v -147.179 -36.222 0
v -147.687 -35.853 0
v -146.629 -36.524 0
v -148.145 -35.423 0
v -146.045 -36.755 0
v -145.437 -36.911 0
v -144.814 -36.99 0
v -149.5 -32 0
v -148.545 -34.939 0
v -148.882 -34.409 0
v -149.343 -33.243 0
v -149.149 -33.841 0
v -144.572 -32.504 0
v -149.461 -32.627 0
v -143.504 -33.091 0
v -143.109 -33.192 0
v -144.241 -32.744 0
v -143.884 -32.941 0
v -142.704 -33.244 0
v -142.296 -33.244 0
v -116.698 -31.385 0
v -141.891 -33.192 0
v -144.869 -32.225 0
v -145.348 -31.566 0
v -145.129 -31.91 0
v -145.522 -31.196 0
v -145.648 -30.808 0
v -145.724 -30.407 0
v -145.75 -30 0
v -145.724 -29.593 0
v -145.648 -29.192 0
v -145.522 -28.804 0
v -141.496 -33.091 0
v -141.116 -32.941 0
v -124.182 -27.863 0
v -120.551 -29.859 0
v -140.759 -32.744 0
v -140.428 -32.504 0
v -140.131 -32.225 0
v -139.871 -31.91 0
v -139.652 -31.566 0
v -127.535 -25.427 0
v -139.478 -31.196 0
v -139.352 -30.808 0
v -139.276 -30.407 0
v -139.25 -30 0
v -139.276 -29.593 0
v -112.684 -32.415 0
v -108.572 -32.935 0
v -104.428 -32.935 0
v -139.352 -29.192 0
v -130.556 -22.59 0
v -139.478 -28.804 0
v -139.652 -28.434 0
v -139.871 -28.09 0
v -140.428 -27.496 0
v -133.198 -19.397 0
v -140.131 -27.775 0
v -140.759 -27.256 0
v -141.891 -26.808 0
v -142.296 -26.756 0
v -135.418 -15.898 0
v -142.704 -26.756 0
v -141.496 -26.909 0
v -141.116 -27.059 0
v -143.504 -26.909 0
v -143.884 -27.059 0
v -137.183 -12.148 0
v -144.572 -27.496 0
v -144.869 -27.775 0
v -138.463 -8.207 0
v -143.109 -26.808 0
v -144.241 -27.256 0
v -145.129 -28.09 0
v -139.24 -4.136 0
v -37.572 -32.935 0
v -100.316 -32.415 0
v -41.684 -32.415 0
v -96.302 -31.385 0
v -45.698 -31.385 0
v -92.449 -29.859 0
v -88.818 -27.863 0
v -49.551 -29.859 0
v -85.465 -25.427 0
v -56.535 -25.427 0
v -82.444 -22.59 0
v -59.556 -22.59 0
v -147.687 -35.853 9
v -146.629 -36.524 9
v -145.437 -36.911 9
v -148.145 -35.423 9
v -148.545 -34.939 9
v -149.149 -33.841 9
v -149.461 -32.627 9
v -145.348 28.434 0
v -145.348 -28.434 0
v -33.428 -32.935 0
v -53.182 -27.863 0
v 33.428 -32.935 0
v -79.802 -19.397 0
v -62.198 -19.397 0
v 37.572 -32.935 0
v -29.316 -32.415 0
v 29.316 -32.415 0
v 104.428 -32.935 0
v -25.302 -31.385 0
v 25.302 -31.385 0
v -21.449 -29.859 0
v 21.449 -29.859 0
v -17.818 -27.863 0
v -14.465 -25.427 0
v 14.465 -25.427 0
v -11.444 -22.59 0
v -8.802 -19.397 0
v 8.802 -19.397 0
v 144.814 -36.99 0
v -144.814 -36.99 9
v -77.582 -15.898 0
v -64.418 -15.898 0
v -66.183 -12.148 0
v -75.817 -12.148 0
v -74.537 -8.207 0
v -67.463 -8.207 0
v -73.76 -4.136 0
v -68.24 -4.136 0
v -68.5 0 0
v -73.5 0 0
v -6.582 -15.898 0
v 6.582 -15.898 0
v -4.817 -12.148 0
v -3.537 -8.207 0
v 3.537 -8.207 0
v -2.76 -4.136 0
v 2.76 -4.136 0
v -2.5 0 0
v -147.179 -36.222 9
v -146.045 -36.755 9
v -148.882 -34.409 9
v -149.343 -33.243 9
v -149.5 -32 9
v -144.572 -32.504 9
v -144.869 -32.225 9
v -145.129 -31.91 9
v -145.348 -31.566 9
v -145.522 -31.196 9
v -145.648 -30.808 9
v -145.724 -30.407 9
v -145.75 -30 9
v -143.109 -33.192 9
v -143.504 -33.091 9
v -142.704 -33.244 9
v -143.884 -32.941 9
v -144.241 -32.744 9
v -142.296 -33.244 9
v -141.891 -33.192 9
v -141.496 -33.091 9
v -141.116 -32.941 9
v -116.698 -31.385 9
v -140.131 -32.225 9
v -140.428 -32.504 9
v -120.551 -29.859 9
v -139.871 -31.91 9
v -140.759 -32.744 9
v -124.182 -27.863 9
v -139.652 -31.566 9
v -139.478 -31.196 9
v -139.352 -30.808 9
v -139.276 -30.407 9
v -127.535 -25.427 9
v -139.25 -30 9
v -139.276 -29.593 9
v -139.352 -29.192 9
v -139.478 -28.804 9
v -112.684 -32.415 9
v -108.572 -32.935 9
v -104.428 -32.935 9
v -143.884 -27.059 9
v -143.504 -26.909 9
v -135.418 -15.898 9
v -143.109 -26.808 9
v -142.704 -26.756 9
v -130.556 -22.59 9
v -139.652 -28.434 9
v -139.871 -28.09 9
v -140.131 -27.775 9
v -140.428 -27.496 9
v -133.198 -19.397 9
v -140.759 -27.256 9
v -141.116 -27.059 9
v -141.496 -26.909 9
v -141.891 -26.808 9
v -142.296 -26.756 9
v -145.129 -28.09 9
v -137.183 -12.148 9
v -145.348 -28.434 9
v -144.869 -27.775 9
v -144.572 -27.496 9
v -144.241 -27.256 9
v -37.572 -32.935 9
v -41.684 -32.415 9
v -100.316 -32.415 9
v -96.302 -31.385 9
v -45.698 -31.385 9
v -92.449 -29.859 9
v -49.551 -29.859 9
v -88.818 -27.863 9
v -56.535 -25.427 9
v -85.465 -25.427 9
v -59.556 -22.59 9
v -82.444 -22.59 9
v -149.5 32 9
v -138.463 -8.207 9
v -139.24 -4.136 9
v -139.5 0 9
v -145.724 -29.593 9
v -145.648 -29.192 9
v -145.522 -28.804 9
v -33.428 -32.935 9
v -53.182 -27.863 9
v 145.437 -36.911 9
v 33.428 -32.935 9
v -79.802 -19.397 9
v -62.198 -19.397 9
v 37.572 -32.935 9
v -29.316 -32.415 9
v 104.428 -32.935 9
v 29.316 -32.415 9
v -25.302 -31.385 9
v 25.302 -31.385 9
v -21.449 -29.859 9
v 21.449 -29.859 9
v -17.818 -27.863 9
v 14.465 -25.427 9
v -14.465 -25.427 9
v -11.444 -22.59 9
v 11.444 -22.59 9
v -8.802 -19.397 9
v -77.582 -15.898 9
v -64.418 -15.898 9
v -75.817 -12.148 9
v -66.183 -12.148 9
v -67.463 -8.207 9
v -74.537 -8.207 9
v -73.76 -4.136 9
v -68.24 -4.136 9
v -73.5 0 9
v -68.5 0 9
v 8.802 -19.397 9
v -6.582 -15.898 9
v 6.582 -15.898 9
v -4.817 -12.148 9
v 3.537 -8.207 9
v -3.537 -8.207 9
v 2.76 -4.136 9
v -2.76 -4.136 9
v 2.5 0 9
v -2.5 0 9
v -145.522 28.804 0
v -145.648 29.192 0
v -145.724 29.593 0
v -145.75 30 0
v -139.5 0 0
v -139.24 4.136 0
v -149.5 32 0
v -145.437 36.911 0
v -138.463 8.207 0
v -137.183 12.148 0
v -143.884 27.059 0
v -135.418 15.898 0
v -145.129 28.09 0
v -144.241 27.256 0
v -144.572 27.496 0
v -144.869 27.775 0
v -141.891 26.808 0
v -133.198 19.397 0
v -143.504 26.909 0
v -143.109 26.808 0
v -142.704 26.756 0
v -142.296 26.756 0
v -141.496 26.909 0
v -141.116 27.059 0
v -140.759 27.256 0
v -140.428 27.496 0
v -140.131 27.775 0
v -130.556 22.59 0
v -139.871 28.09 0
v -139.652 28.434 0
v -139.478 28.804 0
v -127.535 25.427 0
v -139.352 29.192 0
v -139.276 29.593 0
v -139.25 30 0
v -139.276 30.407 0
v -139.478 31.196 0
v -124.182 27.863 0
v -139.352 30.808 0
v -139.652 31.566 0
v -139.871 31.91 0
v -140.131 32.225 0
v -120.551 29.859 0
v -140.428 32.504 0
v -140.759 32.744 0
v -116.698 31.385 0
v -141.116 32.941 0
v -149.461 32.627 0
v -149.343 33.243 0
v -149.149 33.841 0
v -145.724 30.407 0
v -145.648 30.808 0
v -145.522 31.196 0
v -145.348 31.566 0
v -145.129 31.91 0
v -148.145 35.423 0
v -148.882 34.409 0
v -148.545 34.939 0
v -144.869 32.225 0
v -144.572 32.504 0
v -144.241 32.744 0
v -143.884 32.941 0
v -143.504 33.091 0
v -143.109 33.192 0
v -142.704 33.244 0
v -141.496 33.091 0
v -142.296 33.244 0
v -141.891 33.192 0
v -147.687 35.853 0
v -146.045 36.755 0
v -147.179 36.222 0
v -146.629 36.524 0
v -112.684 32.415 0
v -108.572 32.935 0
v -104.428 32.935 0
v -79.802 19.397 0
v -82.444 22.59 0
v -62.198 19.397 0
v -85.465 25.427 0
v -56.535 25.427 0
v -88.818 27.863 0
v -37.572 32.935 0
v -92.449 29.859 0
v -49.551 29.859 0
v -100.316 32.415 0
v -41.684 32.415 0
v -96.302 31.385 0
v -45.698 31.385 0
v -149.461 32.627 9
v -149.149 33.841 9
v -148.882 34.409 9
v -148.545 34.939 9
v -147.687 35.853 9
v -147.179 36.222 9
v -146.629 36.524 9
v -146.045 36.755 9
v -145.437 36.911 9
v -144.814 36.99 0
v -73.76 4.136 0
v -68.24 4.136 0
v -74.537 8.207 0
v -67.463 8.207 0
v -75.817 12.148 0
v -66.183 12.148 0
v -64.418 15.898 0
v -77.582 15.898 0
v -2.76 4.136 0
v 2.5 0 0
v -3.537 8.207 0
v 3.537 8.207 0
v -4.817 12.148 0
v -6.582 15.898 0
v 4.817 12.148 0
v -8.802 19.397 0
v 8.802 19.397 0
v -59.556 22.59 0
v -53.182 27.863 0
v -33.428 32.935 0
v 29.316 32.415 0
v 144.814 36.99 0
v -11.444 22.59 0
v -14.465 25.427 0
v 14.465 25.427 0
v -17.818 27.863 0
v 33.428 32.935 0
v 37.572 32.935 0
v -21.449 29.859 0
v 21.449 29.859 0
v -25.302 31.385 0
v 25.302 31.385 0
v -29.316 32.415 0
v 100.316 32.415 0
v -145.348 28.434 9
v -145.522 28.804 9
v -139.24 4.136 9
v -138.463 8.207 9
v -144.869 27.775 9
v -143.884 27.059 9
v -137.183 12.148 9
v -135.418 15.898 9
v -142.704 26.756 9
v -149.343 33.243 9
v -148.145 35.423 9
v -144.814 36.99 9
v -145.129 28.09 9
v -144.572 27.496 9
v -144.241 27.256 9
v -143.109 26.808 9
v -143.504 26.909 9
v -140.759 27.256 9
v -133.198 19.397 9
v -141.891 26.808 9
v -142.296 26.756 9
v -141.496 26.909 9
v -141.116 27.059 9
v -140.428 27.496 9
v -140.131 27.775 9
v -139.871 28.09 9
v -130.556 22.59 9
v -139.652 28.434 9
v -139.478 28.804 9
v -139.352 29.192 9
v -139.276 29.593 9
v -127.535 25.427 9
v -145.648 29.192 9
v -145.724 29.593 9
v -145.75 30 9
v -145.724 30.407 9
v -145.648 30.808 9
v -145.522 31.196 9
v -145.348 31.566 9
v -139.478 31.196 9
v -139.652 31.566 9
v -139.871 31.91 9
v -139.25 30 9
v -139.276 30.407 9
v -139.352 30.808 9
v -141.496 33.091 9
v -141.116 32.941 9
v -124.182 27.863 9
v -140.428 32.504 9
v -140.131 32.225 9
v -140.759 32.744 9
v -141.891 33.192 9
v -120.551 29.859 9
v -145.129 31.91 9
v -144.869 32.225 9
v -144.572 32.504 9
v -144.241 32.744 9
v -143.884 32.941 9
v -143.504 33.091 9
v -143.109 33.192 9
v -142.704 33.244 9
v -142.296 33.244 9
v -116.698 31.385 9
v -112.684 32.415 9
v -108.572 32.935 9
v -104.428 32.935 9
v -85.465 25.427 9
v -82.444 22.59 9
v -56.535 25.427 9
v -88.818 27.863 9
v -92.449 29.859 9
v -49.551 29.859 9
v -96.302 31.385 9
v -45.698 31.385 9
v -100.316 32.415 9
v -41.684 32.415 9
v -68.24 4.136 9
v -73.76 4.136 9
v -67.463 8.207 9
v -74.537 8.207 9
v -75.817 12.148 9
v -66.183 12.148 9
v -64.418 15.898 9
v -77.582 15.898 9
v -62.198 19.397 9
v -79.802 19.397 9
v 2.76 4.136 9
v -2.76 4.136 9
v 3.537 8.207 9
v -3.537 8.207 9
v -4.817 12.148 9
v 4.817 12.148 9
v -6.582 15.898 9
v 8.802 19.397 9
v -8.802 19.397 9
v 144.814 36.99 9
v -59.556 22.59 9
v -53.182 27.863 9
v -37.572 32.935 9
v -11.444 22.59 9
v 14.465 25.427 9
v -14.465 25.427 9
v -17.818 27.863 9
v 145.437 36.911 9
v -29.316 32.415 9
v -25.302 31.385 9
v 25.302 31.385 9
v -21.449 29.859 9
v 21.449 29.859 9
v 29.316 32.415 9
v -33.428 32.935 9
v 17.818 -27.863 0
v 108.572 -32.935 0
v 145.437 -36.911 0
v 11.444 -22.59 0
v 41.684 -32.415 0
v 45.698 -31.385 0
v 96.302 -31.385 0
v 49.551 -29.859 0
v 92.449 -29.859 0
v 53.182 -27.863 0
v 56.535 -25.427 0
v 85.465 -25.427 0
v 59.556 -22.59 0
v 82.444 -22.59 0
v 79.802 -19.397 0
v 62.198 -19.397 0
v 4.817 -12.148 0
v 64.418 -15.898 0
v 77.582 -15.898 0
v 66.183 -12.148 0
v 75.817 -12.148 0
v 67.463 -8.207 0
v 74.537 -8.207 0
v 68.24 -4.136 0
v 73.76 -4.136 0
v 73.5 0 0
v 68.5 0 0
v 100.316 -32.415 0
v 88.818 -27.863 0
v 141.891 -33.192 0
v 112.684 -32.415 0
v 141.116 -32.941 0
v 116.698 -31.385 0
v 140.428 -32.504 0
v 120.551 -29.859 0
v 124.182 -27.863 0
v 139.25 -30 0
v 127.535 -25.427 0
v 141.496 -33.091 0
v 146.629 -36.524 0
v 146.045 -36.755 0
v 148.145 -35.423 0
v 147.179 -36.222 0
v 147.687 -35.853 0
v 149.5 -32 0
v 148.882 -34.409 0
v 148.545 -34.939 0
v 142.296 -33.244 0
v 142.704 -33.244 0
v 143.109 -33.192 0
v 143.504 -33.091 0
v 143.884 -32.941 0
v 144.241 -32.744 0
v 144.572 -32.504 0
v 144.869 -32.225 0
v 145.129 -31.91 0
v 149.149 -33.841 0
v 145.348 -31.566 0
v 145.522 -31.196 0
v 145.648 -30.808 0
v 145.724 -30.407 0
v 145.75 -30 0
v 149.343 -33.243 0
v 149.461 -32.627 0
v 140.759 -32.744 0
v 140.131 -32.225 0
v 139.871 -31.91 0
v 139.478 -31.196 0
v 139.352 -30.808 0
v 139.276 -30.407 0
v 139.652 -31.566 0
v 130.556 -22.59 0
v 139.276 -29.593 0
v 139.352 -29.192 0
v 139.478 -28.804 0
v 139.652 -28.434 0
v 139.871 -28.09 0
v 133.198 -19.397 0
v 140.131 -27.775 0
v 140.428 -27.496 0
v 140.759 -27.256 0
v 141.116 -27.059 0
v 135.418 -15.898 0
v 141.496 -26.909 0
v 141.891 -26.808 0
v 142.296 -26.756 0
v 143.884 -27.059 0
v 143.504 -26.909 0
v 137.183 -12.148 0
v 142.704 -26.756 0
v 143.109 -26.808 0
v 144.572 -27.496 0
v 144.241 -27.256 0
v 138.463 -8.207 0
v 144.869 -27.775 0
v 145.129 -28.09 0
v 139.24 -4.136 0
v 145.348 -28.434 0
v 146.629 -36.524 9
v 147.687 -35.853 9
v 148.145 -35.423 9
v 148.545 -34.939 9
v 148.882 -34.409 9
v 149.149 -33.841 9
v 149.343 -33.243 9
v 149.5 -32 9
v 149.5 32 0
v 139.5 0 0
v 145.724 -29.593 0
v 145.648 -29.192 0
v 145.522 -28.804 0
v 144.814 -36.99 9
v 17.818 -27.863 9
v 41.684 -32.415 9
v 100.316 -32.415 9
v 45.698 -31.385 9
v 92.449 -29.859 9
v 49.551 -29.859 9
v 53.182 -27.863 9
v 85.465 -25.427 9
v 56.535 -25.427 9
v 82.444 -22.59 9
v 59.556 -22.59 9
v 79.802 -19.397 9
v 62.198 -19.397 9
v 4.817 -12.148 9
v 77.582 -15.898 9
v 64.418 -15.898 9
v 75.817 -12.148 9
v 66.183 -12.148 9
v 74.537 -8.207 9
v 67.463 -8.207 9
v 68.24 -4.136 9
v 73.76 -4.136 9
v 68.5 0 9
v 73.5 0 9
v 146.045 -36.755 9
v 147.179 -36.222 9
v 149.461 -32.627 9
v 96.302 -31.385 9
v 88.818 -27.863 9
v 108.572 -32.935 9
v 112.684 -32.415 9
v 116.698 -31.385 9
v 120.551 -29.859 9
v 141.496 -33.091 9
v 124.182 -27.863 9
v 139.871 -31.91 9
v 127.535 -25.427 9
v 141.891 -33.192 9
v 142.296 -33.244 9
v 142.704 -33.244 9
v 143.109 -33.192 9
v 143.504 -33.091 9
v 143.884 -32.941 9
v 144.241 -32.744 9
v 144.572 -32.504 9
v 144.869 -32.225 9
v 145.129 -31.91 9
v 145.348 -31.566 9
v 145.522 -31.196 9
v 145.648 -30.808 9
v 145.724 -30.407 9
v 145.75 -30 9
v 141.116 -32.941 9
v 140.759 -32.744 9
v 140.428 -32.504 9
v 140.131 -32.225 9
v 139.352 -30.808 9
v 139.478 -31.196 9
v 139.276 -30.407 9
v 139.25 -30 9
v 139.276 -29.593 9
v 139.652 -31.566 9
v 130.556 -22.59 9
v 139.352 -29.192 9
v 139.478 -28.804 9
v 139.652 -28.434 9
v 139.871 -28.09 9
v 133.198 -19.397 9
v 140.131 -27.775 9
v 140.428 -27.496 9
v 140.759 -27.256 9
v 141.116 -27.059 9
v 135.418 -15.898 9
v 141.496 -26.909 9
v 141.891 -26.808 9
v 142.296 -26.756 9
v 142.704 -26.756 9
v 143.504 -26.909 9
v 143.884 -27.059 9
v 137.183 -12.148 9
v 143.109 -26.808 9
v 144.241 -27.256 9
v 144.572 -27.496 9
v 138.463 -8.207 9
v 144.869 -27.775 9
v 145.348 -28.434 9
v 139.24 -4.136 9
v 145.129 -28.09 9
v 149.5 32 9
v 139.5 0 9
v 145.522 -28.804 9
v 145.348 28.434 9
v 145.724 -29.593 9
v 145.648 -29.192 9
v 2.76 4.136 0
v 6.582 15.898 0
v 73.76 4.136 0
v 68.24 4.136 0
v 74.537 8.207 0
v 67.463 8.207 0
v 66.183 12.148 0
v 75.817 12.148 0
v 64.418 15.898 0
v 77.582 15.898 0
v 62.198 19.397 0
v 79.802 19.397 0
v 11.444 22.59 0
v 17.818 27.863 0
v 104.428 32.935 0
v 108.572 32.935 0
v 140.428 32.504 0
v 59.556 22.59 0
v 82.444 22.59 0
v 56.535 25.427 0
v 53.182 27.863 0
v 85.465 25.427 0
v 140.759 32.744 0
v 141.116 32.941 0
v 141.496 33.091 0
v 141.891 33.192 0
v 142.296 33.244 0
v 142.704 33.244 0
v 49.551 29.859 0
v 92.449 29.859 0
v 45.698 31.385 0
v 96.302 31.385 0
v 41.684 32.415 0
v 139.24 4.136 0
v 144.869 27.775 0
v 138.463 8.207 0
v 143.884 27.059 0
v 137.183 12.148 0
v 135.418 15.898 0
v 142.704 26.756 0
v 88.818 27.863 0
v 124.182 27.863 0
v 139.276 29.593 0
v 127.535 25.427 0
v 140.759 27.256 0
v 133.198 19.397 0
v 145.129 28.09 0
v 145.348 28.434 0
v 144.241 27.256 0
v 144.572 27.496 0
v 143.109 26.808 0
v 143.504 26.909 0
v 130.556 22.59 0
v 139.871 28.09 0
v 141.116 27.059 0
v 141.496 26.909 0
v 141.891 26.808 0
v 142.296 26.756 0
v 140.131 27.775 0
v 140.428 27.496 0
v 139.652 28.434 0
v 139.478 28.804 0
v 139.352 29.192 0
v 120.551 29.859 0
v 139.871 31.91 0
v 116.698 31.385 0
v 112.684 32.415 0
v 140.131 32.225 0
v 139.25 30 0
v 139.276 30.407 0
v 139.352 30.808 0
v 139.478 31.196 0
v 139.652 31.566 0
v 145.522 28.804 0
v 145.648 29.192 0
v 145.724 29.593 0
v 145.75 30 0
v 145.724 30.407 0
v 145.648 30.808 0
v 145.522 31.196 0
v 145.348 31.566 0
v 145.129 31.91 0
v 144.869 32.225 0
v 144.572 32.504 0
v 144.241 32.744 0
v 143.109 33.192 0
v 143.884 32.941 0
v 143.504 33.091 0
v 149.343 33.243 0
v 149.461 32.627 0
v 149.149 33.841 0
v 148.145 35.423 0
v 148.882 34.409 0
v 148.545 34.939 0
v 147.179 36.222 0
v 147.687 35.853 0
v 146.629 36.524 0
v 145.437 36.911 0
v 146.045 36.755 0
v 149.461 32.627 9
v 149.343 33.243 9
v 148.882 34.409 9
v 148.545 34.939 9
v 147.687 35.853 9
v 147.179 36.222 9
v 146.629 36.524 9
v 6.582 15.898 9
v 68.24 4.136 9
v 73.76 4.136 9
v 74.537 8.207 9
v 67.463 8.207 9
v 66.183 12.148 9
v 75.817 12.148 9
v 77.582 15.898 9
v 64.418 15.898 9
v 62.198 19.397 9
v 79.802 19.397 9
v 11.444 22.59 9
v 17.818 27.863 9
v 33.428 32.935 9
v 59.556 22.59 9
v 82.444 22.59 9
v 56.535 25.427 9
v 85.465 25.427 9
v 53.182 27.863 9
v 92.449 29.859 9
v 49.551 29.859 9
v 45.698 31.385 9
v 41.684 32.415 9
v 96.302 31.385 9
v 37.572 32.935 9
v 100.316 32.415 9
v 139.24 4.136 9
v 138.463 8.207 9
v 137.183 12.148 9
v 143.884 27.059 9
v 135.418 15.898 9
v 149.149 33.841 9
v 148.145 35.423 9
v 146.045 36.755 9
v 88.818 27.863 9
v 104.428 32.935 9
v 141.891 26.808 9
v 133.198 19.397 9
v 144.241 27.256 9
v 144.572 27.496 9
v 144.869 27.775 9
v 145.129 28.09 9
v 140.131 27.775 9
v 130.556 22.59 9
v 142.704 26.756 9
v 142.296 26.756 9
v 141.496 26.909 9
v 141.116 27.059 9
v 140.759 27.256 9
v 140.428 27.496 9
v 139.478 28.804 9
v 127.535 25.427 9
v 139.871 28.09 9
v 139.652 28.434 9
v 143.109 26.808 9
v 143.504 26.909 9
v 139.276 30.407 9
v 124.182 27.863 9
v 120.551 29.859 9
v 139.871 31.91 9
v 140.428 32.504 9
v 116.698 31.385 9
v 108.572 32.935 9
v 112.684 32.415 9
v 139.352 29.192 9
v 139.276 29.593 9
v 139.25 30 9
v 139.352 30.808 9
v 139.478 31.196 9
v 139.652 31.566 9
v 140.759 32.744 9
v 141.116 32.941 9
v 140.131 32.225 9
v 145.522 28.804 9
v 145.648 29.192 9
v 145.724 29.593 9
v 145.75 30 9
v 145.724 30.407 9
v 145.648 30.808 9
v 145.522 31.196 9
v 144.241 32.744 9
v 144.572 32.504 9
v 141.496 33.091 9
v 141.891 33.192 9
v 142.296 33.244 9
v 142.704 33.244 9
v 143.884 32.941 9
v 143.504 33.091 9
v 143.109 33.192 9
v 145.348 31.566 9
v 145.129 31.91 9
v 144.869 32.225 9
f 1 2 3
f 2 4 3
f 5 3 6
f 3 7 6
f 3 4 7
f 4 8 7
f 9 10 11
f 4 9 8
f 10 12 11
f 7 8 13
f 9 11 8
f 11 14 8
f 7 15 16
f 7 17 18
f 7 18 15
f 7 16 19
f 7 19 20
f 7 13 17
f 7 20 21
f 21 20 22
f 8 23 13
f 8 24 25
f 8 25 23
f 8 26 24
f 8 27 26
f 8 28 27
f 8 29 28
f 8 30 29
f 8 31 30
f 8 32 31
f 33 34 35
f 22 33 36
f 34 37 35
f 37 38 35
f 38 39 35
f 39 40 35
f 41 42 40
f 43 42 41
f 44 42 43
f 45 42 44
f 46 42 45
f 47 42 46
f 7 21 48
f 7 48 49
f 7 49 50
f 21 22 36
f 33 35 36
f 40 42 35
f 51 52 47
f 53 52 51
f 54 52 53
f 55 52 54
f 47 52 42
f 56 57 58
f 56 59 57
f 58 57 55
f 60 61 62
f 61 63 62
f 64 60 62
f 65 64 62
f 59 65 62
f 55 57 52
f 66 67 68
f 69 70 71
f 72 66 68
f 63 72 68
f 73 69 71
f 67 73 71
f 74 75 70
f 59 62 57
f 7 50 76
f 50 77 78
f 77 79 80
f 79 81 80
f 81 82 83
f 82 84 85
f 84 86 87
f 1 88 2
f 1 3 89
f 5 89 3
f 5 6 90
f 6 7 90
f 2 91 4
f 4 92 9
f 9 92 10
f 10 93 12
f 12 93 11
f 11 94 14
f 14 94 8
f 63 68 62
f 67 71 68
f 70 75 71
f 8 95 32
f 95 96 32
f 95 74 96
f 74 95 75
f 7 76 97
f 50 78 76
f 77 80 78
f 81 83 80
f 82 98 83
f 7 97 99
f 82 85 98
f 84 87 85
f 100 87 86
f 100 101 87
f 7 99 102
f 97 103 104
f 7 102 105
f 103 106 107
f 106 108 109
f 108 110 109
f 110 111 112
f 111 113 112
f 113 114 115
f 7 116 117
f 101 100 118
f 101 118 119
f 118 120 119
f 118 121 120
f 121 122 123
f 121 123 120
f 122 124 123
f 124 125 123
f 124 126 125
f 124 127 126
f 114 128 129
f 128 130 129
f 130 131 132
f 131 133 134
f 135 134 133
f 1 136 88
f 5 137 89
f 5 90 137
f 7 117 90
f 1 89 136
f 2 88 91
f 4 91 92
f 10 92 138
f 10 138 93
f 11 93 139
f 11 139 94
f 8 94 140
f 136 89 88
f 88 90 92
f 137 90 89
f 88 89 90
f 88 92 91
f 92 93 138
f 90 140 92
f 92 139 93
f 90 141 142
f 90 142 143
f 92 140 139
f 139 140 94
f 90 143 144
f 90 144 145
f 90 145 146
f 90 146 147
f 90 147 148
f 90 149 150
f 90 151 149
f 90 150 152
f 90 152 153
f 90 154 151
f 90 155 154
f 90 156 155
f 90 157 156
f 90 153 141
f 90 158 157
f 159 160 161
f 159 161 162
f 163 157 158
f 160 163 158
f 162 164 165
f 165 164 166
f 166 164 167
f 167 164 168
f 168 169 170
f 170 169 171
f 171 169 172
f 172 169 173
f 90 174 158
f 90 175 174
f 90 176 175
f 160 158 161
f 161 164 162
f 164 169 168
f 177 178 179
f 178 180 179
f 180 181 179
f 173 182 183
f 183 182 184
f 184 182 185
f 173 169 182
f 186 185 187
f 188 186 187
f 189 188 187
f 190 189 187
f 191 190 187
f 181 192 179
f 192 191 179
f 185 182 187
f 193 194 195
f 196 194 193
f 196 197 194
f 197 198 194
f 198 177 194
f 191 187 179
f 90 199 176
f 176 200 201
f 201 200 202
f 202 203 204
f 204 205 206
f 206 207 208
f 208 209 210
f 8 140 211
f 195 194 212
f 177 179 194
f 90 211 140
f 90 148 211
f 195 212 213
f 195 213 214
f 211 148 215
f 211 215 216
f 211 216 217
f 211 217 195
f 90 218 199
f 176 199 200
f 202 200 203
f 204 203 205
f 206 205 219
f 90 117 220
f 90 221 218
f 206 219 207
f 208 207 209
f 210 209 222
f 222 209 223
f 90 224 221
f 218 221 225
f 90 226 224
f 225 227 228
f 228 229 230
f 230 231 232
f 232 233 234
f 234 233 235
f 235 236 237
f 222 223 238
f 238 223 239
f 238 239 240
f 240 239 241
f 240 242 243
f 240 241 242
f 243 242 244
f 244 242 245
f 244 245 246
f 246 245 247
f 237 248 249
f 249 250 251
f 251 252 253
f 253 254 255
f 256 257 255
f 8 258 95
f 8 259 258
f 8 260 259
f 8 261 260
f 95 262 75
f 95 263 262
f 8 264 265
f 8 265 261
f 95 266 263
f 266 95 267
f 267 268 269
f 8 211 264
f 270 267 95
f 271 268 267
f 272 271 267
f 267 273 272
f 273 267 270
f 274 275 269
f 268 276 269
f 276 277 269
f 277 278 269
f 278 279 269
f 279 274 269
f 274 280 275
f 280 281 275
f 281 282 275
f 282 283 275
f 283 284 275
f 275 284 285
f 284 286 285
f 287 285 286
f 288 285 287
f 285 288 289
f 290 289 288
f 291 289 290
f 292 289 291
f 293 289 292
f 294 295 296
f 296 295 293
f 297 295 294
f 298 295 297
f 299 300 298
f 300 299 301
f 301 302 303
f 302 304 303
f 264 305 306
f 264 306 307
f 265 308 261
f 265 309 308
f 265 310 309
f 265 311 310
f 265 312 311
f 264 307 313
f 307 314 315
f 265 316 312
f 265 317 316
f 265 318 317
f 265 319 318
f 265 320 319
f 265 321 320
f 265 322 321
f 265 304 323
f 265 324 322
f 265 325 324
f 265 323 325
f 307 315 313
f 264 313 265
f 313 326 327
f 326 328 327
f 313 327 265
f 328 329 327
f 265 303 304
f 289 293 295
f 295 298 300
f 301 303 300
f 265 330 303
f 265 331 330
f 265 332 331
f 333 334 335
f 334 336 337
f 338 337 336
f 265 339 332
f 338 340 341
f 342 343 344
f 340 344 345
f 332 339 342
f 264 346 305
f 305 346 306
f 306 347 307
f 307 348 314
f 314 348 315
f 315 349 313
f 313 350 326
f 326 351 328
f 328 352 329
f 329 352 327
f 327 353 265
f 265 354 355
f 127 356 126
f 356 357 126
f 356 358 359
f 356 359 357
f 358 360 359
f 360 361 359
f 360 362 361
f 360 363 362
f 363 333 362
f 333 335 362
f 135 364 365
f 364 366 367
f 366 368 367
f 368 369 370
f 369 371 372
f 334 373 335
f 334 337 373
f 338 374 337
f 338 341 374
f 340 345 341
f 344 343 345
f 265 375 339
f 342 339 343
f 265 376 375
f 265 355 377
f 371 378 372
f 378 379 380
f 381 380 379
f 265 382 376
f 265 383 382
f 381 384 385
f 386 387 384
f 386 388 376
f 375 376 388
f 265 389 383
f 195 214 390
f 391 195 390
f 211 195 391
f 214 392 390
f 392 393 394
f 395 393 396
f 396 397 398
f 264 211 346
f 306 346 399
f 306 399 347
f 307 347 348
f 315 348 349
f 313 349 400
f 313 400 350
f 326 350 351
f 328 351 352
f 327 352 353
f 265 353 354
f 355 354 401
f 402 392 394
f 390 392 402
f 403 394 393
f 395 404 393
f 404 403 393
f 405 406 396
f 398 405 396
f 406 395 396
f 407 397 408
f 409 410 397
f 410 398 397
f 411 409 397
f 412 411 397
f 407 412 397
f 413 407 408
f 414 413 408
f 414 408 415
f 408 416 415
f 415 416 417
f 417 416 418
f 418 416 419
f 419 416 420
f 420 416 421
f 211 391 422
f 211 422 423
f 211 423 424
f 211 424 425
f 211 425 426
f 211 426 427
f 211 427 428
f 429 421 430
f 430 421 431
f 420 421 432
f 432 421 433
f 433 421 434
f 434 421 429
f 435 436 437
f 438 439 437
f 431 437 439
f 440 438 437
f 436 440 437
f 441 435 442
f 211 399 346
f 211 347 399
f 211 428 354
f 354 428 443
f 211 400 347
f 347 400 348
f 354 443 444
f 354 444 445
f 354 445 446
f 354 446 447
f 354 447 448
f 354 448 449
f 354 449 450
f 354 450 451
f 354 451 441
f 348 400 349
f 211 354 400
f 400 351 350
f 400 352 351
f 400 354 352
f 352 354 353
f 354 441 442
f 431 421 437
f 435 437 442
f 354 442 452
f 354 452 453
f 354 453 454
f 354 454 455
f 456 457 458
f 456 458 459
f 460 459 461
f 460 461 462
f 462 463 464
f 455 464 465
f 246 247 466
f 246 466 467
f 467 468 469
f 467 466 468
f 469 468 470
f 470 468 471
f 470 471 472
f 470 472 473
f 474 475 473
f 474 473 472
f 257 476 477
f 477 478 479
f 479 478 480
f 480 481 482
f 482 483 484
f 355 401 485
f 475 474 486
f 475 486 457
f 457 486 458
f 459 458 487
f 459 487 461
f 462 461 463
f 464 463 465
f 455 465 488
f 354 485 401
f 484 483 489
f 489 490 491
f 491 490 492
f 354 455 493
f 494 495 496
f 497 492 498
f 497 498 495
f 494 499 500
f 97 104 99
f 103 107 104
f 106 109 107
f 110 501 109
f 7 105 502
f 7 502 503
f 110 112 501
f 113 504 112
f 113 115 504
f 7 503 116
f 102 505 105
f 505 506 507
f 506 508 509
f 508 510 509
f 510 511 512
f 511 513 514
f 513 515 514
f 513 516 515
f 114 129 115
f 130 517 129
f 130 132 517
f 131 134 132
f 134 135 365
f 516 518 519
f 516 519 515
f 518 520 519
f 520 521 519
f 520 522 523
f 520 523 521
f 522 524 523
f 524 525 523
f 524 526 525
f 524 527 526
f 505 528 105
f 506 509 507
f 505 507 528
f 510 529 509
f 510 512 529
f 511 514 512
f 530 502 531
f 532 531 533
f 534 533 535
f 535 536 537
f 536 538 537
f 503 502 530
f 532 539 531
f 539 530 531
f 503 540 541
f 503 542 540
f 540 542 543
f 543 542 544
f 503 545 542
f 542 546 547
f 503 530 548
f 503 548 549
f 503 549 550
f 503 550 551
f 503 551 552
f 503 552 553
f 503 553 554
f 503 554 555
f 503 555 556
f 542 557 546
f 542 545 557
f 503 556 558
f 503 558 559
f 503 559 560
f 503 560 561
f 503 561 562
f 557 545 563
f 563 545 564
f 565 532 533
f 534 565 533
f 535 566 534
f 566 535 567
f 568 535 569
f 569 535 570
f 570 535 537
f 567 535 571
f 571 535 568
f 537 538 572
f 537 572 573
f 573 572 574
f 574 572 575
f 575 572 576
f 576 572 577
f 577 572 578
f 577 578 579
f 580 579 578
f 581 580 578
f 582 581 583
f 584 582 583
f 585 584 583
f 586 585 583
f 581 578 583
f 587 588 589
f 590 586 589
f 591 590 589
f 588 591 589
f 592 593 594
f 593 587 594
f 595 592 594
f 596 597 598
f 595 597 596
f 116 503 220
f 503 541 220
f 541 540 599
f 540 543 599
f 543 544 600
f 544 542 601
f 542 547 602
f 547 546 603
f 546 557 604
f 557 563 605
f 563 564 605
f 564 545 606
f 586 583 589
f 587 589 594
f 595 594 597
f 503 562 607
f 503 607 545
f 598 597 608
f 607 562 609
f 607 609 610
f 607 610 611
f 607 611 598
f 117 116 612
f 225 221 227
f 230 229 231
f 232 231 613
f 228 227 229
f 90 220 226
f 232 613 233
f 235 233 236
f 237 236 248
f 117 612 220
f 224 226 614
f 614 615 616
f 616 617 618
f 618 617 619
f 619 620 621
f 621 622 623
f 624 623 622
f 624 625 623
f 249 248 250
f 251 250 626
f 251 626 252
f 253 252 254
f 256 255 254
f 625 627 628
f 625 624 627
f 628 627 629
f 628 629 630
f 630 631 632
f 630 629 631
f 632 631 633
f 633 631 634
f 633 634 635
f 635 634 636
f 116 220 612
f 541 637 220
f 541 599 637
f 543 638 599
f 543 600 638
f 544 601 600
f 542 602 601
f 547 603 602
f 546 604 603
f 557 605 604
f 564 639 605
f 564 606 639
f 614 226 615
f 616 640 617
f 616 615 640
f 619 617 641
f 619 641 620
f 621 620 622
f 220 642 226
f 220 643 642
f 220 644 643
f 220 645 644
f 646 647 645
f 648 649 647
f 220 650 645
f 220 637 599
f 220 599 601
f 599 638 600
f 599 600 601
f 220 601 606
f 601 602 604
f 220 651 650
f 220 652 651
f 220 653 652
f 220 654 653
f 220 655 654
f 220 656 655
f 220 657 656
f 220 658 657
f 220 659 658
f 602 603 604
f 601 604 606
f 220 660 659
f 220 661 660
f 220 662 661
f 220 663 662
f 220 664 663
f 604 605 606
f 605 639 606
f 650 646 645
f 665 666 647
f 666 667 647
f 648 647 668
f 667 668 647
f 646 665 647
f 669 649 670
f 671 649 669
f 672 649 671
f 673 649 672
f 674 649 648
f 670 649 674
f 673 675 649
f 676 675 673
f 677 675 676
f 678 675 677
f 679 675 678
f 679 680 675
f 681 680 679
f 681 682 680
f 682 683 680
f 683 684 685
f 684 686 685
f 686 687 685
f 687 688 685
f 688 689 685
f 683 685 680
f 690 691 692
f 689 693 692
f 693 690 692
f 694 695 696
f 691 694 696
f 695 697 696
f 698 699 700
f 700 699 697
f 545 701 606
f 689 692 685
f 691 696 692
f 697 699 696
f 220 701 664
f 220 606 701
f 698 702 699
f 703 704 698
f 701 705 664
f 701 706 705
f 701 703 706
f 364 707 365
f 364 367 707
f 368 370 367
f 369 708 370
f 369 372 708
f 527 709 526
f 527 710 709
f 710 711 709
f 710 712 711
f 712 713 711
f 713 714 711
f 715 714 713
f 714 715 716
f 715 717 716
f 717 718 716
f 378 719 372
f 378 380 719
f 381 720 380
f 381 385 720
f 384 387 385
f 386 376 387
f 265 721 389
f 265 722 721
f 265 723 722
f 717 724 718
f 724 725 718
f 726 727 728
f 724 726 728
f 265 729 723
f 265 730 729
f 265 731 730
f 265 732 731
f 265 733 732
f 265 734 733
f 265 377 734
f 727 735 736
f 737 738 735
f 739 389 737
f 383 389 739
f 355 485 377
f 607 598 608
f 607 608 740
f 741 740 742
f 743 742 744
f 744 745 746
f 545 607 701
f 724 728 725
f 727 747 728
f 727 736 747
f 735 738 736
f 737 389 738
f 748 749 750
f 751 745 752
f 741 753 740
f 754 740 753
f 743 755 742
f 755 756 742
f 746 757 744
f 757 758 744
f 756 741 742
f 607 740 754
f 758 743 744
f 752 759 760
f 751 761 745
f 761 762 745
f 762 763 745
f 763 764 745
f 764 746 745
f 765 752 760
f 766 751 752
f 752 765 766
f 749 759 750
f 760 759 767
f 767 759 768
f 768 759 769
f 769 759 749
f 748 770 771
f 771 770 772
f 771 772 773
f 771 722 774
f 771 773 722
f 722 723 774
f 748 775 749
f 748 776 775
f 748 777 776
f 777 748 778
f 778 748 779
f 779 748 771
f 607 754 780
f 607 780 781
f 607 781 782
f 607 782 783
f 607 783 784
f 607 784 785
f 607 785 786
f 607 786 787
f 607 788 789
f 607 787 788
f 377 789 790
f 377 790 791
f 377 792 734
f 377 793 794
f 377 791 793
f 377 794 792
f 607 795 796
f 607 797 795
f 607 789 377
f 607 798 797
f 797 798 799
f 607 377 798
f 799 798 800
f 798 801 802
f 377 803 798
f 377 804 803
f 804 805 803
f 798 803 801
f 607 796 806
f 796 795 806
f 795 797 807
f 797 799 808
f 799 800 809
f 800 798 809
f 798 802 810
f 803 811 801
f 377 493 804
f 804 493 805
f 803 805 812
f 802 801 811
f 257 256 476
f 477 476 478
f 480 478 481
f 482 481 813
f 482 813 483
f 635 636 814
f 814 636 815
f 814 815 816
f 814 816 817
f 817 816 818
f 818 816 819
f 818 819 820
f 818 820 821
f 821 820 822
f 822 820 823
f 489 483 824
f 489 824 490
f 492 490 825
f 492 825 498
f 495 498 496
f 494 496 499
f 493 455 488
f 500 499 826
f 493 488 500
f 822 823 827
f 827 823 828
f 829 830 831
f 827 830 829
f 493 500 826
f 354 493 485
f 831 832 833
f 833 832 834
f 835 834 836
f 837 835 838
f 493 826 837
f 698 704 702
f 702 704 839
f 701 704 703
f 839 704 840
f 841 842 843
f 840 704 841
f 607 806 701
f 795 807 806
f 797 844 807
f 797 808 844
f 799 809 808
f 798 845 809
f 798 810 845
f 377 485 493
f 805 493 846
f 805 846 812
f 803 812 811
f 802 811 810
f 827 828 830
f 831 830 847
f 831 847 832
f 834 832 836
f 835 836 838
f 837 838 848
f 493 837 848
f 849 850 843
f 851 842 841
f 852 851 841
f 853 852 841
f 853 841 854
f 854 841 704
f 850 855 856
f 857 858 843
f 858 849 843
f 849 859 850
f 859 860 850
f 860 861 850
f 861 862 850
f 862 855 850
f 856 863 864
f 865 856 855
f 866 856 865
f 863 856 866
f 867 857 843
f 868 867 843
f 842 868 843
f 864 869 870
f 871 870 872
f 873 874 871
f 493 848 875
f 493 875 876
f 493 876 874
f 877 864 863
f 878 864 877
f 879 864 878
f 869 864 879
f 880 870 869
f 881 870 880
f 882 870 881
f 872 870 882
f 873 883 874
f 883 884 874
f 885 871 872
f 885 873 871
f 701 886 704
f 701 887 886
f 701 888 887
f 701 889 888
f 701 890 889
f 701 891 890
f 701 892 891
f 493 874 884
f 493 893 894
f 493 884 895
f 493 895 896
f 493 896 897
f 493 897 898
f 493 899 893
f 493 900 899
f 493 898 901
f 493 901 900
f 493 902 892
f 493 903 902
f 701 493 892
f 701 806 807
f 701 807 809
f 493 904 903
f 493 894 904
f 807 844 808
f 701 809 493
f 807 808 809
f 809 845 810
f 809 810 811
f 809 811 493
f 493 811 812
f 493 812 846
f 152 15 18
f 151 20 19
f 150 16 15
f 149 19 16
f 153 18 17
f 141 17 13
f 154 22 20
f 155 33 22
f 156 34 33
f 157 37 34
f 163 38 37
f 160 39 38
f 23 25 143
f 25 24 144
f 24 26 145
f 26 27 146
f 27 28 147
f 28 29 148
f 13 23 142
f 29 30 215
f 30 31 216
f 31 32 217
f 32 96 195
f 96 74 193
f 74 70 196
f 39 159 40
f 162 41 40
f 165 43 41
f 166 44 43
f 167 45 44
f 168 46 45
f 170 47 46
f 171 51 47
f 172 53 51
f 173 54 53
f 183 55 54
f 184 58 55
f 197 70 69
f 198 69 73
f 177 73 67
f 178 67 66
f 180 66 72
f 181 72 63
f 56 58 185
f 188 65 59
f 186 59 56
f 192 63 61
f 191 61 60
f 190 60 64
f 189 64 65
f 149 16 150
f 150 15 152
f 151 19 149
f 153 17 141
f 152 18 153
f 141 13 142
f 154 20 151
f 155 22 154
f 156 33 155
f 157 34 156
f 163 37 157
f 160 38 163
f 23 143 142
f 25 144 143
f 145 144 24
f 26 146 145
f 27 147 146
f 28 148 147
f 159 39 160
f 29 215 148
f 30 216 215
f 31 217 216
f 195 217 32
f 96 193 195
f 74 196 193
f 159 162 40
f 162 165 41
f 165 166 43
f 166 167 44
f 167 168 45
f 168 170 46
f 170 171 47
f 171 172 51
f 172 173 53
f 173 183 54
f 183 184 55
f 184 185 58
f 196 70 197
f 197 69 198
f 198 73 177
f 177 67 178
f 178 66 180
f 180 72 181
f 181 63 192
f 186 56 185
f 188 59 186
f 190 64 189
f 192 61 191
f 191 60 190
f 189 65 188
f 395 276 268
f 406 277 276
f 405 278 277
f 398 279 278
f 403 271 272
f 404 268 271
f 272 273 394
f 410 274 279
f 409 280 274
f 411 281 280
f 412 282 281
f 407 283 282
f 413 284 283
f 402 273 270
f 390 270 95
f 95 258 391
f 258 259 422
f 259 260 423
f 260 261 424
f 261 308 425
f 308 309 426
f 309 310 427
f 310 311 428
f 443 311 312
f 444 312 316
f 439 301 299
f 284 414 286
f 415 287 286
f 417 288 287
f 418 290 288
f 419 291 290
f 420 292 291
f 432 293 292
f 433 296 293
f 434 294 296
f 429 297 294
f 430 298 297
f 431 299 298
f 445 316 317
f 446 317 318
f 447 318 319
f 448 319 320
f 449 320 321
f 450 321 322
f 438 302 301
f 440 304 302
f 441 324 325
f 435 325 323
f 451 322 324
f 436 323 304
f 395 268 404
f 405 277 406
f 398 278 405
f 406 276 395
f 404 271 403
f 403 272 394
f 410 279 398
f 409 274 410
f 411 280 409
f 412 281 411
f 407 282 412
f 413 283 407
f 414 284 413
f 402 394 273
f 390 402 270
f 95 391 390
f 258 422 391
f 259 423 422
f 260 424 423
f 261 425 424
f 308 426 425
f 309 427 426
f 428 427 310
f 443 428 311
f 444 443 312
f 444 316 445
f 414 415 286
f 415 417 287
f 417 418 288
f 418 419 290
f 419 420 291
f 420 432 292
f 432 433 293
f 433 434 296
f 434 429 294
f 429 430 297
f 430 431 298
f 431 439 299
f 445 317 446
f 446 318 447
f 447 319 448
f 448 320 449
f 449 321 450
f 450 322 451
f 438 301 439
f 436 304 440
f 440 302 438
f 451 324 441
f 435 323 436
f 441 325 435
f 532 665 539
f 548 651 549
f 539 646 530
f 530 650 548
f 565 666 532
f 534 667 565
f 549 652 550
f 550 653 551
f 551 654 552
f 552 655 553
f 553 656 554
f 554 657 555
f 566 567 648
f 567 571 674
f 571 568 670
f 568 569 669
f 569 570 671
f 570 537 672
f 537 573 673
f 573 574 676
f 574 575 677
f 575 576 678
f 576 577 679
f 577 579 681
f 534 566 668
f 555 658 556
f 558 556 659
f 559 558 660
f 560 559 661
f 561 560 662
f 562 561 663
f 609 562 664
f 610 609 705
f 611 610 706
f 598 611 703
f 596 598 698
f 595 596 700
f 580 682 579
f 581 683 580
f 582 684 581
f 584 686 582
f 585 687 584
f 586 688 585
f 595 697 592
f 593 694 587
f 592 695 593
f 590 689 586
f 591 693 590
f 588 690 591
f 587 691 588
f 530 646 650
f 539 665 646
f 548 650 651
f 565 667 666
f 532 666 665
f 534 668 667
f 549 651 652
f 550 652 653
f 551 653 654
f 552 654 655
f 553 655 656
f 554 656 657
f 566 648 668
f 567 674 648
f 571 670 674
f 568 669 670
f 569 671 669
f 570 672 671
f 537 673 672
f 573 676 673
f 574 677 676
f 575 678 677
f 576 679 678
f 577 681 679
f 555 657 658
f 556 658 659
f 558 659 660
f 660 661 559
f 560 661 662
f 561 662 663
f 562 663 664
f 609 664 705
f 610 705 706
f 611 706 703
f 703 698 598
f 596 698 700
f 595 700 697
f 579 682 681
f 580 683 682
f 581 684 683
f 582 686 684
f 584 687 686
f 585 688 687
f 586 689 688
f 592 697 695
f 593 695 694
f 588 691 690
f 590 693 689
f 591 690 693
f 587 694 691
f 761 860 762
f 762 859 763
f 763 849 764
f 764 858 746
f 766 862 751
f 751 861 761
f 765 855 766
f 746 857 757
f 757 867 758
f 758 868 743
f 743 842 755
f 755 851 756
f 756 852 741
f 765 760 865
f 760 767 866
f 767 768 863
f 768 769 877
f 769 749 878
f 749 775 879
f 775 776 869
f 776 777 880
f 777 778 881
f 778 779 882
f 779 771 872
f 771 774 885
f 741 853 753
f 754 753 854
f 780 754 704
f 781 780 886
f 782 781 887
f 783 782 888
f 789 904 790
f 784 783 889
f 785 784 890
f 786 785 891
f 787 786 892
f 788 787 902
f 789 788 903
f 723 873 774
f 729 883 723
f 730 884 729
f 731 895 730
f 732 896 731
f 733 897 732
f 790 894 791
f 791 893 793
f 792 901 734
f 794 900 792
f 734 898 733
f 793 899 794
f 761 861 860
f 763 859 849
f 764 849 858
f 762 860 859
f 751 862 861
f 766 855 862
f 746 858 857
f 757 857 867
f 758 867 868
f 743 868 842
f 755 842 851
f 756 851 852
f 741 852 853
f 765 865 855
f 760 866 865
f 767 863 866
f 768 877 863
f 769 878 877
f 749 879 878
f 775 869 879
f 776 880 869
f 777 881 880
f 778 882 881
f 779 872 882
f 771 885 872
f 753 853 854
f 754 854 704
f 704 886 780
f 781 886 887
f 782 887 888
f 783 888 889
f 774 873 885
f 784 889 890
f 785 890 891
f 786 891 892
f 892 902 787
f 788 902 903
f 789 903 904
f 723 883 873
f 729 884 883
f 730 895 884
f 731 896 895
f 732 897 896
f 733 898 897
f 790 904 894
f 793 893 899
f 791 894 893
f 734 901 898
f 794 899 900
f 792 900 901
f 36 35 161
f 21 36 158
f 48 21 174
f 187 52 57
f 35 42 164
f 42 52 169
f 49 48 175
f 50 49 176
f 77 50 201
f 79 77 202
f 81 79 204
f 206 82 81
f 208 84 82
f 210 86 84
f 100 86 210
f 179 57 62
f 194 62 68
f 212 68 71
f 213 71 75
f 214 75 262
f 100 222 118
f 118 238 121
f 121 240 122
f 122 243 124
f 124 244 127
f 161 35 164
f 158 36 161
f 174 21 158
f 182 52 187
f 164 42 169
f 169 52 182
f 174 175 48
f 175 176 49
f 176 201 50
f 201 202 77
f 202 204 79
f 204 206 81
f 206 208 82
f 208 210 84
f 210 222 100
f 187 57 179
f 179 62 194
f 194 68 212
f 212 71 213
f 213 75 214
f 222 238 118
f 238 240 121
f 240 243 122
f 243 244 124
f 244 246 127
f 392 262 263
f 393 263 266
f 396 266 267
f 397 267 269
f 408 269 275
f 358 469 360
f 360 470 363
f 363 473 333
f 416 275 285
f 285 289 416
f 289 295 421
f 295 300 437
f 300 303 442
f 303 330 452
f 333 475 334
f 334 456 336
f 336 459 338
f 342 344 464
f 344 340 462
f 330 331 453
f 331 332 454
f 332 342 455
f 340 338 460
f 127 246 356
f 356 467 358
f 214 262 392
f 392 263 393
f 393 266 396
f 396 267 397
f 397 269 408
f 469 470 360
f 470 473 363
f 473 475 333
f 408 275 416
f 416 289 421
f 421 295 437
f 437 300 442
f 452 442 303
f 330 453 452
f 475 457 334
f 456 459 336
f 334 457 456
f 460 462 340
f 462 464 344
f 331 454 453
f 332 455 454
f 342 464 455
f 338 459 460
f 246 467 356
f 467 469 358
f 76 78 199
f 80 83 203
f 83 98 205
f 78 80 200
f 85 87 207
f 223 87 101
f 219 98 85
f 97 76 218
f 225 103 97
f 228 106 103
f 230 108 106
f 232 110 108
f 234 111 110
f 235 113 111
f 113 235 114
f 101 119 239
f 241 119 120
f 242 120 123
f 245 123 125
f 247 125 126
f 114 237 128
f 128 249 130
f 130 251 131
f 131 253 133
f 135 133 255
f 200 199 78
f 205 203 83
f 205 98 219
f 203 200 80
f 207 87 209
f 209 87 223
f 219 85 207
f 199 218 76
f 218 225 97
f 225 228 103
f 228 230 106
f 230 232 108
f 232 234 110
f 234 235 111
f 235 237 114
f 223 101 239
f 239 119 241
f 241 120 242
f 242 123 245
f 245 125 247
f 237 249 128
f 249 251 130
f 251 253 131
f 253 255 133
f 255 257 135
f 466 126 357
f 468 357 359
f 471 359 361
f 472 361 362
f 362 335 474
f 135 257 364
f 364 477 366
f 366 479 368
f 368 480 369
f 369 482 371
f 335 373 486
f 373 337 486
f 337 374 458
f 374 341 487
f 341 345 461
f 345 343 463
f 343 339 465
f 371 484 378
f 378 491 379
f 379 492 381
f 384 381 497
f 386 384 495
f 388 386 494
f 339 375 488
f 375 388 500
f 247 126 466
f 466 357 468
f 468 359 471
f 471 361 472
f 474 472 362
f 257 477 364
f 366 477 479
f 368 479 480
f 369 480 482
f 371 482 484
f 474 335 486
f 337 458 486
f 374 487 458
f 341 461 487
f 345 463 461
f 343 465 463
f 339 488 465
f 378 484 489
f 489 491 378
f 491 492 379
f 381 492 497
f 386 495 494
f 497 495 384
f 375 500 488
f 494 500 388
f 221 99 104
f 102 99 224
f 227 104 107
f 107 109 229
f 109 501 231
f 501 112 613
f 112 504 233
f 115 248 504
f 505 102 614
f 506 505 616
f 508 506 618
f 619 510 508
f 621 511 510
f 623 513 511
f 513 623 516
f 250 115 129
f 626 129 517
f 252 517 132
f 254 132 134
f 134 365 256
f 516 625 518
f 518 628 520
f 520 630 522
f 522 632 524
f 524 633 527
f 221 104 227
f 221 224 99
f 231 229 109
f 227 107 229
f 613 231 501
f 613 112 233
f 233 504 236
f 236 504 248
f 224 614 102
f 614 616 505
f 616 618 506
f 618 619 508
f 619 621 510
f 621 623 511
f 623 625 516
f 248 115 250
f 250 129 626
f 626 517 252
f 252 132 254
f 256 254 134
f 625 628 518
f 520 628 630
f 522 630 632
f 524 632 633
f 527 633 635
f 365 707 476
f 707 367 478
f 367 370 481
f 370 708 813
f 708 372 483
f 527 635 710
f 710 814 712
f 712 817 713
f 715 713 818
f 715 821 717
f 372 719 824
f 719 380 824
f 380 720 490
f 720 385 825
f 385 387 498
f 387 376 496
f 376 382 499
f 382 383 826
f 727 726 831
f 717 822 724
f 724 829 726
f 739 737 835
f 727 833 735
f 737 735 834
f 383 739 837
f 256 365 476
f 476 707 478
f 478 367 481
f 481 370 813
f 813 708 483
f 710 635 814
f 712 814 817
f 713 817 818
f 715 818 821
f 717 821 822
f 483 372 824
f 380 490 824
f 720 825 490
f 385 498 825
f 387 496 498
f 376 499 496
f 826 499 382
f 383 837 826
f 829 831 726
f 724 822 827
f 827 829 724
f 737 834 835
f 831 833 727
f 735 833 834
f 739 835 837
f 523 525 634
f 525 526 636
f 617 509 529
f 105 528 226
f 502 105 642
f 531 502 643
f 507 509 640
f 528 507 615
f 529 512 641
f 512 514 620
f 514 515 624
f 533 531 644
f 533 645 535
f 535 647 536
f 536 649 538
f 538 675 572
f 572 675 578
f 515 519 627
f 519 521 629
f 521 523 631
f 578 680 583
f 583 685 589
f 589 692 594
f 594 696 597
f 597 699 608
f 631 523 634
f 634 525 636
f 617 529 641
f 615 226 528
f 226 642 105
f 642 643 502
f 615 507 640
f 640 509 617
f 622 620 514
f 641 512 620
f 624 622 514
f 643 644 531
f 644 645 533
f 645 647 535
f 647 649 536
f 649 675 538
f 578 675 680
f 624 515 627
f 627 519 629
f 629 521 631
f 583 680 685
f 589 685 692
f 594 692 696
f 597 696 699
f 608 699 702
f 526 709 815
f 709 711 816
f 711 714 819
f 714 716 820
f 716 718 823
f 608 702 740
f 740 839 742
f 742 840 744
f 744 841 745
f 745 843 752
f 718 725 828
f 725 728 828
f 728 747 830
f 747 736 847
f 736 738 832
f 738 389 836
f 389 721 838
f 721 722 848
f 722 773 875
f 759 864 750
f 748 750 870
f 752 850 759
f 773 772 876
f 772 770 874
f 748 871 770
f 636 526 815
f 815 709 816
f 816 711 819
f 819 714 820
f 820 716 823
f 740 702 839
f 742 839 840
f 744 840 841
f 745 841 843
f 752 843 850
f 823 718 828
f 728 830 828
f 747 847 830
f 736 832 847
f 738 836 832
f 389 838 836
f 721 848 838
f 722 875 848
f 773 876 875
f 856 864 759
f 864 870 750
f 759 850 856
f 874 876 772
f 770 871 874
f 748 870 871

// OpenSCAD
$fn = 50;

difference() {
	union() {
		hull() {
			translate(v = [-144.5, 32.0, 0]) {
				cylinder(h = 9, r = 5);
			}
			translate(v = [144.5, 32.0, 0]) {
				cylinder(h = 9, r = 5);
			}
			translate(v = [-144.5, -32.0, 0]) {
				cylinder(h = 9, r = 5);
			}
			translate(v = [144.5, -32.0, 0]) {
				cylinder(h = 9, r = 5);
			}
		}
	}
	union() {
		translate(v = [-142.5, -30.0, -100.0]) {
			cylinder(h = 200, r = 3.25);
		}
		translate(v = [-142.5, 30.0, -100.0]) {
			cylinder(h = 200, r = 3.25);
		}
		translate(v = [142.5, -30.0, -100.0]) {
			cylinder(h = 200, r = 3.25);
		}
		translate(v = [142.5, 30.0, -100.0]) {
			cylinder(h = 200, r = 3.25);
		}
		translate(v = [-142.5, -30.0, -100.0]) {
			cylinder(h = 200, r = 1.8);
		}
		translate(v = [-142.5, 30.0, -100.0]) {
			cylinder(h = 200, r = 1.8);
		}
		translate(v = [142.5, -30.0, -100.0]) {
			cylinder(h = 200, r = 1.8);
		}
		translate(v = [142.5, 30.0, -100.0]) {
			cylinder(h = 200, r = 1.8);
		}
		translate(v = [-106.5, 0, 0.0]) {
			cylinder(h = 9, r = 33.0);
		}
		translate(v = [-35.5, 0, 0.0]) {
			cylinder(h = 9, r = 33.0);
		}
		translate(v = [35.5, 0, 0.0]) {
			cylinder(h = 9, r = 33.0);
		}
		translate(v = [106.5, 0, 0.0]) {
			cylinder(h = 9, r = 33.0);
		}
	}
}
